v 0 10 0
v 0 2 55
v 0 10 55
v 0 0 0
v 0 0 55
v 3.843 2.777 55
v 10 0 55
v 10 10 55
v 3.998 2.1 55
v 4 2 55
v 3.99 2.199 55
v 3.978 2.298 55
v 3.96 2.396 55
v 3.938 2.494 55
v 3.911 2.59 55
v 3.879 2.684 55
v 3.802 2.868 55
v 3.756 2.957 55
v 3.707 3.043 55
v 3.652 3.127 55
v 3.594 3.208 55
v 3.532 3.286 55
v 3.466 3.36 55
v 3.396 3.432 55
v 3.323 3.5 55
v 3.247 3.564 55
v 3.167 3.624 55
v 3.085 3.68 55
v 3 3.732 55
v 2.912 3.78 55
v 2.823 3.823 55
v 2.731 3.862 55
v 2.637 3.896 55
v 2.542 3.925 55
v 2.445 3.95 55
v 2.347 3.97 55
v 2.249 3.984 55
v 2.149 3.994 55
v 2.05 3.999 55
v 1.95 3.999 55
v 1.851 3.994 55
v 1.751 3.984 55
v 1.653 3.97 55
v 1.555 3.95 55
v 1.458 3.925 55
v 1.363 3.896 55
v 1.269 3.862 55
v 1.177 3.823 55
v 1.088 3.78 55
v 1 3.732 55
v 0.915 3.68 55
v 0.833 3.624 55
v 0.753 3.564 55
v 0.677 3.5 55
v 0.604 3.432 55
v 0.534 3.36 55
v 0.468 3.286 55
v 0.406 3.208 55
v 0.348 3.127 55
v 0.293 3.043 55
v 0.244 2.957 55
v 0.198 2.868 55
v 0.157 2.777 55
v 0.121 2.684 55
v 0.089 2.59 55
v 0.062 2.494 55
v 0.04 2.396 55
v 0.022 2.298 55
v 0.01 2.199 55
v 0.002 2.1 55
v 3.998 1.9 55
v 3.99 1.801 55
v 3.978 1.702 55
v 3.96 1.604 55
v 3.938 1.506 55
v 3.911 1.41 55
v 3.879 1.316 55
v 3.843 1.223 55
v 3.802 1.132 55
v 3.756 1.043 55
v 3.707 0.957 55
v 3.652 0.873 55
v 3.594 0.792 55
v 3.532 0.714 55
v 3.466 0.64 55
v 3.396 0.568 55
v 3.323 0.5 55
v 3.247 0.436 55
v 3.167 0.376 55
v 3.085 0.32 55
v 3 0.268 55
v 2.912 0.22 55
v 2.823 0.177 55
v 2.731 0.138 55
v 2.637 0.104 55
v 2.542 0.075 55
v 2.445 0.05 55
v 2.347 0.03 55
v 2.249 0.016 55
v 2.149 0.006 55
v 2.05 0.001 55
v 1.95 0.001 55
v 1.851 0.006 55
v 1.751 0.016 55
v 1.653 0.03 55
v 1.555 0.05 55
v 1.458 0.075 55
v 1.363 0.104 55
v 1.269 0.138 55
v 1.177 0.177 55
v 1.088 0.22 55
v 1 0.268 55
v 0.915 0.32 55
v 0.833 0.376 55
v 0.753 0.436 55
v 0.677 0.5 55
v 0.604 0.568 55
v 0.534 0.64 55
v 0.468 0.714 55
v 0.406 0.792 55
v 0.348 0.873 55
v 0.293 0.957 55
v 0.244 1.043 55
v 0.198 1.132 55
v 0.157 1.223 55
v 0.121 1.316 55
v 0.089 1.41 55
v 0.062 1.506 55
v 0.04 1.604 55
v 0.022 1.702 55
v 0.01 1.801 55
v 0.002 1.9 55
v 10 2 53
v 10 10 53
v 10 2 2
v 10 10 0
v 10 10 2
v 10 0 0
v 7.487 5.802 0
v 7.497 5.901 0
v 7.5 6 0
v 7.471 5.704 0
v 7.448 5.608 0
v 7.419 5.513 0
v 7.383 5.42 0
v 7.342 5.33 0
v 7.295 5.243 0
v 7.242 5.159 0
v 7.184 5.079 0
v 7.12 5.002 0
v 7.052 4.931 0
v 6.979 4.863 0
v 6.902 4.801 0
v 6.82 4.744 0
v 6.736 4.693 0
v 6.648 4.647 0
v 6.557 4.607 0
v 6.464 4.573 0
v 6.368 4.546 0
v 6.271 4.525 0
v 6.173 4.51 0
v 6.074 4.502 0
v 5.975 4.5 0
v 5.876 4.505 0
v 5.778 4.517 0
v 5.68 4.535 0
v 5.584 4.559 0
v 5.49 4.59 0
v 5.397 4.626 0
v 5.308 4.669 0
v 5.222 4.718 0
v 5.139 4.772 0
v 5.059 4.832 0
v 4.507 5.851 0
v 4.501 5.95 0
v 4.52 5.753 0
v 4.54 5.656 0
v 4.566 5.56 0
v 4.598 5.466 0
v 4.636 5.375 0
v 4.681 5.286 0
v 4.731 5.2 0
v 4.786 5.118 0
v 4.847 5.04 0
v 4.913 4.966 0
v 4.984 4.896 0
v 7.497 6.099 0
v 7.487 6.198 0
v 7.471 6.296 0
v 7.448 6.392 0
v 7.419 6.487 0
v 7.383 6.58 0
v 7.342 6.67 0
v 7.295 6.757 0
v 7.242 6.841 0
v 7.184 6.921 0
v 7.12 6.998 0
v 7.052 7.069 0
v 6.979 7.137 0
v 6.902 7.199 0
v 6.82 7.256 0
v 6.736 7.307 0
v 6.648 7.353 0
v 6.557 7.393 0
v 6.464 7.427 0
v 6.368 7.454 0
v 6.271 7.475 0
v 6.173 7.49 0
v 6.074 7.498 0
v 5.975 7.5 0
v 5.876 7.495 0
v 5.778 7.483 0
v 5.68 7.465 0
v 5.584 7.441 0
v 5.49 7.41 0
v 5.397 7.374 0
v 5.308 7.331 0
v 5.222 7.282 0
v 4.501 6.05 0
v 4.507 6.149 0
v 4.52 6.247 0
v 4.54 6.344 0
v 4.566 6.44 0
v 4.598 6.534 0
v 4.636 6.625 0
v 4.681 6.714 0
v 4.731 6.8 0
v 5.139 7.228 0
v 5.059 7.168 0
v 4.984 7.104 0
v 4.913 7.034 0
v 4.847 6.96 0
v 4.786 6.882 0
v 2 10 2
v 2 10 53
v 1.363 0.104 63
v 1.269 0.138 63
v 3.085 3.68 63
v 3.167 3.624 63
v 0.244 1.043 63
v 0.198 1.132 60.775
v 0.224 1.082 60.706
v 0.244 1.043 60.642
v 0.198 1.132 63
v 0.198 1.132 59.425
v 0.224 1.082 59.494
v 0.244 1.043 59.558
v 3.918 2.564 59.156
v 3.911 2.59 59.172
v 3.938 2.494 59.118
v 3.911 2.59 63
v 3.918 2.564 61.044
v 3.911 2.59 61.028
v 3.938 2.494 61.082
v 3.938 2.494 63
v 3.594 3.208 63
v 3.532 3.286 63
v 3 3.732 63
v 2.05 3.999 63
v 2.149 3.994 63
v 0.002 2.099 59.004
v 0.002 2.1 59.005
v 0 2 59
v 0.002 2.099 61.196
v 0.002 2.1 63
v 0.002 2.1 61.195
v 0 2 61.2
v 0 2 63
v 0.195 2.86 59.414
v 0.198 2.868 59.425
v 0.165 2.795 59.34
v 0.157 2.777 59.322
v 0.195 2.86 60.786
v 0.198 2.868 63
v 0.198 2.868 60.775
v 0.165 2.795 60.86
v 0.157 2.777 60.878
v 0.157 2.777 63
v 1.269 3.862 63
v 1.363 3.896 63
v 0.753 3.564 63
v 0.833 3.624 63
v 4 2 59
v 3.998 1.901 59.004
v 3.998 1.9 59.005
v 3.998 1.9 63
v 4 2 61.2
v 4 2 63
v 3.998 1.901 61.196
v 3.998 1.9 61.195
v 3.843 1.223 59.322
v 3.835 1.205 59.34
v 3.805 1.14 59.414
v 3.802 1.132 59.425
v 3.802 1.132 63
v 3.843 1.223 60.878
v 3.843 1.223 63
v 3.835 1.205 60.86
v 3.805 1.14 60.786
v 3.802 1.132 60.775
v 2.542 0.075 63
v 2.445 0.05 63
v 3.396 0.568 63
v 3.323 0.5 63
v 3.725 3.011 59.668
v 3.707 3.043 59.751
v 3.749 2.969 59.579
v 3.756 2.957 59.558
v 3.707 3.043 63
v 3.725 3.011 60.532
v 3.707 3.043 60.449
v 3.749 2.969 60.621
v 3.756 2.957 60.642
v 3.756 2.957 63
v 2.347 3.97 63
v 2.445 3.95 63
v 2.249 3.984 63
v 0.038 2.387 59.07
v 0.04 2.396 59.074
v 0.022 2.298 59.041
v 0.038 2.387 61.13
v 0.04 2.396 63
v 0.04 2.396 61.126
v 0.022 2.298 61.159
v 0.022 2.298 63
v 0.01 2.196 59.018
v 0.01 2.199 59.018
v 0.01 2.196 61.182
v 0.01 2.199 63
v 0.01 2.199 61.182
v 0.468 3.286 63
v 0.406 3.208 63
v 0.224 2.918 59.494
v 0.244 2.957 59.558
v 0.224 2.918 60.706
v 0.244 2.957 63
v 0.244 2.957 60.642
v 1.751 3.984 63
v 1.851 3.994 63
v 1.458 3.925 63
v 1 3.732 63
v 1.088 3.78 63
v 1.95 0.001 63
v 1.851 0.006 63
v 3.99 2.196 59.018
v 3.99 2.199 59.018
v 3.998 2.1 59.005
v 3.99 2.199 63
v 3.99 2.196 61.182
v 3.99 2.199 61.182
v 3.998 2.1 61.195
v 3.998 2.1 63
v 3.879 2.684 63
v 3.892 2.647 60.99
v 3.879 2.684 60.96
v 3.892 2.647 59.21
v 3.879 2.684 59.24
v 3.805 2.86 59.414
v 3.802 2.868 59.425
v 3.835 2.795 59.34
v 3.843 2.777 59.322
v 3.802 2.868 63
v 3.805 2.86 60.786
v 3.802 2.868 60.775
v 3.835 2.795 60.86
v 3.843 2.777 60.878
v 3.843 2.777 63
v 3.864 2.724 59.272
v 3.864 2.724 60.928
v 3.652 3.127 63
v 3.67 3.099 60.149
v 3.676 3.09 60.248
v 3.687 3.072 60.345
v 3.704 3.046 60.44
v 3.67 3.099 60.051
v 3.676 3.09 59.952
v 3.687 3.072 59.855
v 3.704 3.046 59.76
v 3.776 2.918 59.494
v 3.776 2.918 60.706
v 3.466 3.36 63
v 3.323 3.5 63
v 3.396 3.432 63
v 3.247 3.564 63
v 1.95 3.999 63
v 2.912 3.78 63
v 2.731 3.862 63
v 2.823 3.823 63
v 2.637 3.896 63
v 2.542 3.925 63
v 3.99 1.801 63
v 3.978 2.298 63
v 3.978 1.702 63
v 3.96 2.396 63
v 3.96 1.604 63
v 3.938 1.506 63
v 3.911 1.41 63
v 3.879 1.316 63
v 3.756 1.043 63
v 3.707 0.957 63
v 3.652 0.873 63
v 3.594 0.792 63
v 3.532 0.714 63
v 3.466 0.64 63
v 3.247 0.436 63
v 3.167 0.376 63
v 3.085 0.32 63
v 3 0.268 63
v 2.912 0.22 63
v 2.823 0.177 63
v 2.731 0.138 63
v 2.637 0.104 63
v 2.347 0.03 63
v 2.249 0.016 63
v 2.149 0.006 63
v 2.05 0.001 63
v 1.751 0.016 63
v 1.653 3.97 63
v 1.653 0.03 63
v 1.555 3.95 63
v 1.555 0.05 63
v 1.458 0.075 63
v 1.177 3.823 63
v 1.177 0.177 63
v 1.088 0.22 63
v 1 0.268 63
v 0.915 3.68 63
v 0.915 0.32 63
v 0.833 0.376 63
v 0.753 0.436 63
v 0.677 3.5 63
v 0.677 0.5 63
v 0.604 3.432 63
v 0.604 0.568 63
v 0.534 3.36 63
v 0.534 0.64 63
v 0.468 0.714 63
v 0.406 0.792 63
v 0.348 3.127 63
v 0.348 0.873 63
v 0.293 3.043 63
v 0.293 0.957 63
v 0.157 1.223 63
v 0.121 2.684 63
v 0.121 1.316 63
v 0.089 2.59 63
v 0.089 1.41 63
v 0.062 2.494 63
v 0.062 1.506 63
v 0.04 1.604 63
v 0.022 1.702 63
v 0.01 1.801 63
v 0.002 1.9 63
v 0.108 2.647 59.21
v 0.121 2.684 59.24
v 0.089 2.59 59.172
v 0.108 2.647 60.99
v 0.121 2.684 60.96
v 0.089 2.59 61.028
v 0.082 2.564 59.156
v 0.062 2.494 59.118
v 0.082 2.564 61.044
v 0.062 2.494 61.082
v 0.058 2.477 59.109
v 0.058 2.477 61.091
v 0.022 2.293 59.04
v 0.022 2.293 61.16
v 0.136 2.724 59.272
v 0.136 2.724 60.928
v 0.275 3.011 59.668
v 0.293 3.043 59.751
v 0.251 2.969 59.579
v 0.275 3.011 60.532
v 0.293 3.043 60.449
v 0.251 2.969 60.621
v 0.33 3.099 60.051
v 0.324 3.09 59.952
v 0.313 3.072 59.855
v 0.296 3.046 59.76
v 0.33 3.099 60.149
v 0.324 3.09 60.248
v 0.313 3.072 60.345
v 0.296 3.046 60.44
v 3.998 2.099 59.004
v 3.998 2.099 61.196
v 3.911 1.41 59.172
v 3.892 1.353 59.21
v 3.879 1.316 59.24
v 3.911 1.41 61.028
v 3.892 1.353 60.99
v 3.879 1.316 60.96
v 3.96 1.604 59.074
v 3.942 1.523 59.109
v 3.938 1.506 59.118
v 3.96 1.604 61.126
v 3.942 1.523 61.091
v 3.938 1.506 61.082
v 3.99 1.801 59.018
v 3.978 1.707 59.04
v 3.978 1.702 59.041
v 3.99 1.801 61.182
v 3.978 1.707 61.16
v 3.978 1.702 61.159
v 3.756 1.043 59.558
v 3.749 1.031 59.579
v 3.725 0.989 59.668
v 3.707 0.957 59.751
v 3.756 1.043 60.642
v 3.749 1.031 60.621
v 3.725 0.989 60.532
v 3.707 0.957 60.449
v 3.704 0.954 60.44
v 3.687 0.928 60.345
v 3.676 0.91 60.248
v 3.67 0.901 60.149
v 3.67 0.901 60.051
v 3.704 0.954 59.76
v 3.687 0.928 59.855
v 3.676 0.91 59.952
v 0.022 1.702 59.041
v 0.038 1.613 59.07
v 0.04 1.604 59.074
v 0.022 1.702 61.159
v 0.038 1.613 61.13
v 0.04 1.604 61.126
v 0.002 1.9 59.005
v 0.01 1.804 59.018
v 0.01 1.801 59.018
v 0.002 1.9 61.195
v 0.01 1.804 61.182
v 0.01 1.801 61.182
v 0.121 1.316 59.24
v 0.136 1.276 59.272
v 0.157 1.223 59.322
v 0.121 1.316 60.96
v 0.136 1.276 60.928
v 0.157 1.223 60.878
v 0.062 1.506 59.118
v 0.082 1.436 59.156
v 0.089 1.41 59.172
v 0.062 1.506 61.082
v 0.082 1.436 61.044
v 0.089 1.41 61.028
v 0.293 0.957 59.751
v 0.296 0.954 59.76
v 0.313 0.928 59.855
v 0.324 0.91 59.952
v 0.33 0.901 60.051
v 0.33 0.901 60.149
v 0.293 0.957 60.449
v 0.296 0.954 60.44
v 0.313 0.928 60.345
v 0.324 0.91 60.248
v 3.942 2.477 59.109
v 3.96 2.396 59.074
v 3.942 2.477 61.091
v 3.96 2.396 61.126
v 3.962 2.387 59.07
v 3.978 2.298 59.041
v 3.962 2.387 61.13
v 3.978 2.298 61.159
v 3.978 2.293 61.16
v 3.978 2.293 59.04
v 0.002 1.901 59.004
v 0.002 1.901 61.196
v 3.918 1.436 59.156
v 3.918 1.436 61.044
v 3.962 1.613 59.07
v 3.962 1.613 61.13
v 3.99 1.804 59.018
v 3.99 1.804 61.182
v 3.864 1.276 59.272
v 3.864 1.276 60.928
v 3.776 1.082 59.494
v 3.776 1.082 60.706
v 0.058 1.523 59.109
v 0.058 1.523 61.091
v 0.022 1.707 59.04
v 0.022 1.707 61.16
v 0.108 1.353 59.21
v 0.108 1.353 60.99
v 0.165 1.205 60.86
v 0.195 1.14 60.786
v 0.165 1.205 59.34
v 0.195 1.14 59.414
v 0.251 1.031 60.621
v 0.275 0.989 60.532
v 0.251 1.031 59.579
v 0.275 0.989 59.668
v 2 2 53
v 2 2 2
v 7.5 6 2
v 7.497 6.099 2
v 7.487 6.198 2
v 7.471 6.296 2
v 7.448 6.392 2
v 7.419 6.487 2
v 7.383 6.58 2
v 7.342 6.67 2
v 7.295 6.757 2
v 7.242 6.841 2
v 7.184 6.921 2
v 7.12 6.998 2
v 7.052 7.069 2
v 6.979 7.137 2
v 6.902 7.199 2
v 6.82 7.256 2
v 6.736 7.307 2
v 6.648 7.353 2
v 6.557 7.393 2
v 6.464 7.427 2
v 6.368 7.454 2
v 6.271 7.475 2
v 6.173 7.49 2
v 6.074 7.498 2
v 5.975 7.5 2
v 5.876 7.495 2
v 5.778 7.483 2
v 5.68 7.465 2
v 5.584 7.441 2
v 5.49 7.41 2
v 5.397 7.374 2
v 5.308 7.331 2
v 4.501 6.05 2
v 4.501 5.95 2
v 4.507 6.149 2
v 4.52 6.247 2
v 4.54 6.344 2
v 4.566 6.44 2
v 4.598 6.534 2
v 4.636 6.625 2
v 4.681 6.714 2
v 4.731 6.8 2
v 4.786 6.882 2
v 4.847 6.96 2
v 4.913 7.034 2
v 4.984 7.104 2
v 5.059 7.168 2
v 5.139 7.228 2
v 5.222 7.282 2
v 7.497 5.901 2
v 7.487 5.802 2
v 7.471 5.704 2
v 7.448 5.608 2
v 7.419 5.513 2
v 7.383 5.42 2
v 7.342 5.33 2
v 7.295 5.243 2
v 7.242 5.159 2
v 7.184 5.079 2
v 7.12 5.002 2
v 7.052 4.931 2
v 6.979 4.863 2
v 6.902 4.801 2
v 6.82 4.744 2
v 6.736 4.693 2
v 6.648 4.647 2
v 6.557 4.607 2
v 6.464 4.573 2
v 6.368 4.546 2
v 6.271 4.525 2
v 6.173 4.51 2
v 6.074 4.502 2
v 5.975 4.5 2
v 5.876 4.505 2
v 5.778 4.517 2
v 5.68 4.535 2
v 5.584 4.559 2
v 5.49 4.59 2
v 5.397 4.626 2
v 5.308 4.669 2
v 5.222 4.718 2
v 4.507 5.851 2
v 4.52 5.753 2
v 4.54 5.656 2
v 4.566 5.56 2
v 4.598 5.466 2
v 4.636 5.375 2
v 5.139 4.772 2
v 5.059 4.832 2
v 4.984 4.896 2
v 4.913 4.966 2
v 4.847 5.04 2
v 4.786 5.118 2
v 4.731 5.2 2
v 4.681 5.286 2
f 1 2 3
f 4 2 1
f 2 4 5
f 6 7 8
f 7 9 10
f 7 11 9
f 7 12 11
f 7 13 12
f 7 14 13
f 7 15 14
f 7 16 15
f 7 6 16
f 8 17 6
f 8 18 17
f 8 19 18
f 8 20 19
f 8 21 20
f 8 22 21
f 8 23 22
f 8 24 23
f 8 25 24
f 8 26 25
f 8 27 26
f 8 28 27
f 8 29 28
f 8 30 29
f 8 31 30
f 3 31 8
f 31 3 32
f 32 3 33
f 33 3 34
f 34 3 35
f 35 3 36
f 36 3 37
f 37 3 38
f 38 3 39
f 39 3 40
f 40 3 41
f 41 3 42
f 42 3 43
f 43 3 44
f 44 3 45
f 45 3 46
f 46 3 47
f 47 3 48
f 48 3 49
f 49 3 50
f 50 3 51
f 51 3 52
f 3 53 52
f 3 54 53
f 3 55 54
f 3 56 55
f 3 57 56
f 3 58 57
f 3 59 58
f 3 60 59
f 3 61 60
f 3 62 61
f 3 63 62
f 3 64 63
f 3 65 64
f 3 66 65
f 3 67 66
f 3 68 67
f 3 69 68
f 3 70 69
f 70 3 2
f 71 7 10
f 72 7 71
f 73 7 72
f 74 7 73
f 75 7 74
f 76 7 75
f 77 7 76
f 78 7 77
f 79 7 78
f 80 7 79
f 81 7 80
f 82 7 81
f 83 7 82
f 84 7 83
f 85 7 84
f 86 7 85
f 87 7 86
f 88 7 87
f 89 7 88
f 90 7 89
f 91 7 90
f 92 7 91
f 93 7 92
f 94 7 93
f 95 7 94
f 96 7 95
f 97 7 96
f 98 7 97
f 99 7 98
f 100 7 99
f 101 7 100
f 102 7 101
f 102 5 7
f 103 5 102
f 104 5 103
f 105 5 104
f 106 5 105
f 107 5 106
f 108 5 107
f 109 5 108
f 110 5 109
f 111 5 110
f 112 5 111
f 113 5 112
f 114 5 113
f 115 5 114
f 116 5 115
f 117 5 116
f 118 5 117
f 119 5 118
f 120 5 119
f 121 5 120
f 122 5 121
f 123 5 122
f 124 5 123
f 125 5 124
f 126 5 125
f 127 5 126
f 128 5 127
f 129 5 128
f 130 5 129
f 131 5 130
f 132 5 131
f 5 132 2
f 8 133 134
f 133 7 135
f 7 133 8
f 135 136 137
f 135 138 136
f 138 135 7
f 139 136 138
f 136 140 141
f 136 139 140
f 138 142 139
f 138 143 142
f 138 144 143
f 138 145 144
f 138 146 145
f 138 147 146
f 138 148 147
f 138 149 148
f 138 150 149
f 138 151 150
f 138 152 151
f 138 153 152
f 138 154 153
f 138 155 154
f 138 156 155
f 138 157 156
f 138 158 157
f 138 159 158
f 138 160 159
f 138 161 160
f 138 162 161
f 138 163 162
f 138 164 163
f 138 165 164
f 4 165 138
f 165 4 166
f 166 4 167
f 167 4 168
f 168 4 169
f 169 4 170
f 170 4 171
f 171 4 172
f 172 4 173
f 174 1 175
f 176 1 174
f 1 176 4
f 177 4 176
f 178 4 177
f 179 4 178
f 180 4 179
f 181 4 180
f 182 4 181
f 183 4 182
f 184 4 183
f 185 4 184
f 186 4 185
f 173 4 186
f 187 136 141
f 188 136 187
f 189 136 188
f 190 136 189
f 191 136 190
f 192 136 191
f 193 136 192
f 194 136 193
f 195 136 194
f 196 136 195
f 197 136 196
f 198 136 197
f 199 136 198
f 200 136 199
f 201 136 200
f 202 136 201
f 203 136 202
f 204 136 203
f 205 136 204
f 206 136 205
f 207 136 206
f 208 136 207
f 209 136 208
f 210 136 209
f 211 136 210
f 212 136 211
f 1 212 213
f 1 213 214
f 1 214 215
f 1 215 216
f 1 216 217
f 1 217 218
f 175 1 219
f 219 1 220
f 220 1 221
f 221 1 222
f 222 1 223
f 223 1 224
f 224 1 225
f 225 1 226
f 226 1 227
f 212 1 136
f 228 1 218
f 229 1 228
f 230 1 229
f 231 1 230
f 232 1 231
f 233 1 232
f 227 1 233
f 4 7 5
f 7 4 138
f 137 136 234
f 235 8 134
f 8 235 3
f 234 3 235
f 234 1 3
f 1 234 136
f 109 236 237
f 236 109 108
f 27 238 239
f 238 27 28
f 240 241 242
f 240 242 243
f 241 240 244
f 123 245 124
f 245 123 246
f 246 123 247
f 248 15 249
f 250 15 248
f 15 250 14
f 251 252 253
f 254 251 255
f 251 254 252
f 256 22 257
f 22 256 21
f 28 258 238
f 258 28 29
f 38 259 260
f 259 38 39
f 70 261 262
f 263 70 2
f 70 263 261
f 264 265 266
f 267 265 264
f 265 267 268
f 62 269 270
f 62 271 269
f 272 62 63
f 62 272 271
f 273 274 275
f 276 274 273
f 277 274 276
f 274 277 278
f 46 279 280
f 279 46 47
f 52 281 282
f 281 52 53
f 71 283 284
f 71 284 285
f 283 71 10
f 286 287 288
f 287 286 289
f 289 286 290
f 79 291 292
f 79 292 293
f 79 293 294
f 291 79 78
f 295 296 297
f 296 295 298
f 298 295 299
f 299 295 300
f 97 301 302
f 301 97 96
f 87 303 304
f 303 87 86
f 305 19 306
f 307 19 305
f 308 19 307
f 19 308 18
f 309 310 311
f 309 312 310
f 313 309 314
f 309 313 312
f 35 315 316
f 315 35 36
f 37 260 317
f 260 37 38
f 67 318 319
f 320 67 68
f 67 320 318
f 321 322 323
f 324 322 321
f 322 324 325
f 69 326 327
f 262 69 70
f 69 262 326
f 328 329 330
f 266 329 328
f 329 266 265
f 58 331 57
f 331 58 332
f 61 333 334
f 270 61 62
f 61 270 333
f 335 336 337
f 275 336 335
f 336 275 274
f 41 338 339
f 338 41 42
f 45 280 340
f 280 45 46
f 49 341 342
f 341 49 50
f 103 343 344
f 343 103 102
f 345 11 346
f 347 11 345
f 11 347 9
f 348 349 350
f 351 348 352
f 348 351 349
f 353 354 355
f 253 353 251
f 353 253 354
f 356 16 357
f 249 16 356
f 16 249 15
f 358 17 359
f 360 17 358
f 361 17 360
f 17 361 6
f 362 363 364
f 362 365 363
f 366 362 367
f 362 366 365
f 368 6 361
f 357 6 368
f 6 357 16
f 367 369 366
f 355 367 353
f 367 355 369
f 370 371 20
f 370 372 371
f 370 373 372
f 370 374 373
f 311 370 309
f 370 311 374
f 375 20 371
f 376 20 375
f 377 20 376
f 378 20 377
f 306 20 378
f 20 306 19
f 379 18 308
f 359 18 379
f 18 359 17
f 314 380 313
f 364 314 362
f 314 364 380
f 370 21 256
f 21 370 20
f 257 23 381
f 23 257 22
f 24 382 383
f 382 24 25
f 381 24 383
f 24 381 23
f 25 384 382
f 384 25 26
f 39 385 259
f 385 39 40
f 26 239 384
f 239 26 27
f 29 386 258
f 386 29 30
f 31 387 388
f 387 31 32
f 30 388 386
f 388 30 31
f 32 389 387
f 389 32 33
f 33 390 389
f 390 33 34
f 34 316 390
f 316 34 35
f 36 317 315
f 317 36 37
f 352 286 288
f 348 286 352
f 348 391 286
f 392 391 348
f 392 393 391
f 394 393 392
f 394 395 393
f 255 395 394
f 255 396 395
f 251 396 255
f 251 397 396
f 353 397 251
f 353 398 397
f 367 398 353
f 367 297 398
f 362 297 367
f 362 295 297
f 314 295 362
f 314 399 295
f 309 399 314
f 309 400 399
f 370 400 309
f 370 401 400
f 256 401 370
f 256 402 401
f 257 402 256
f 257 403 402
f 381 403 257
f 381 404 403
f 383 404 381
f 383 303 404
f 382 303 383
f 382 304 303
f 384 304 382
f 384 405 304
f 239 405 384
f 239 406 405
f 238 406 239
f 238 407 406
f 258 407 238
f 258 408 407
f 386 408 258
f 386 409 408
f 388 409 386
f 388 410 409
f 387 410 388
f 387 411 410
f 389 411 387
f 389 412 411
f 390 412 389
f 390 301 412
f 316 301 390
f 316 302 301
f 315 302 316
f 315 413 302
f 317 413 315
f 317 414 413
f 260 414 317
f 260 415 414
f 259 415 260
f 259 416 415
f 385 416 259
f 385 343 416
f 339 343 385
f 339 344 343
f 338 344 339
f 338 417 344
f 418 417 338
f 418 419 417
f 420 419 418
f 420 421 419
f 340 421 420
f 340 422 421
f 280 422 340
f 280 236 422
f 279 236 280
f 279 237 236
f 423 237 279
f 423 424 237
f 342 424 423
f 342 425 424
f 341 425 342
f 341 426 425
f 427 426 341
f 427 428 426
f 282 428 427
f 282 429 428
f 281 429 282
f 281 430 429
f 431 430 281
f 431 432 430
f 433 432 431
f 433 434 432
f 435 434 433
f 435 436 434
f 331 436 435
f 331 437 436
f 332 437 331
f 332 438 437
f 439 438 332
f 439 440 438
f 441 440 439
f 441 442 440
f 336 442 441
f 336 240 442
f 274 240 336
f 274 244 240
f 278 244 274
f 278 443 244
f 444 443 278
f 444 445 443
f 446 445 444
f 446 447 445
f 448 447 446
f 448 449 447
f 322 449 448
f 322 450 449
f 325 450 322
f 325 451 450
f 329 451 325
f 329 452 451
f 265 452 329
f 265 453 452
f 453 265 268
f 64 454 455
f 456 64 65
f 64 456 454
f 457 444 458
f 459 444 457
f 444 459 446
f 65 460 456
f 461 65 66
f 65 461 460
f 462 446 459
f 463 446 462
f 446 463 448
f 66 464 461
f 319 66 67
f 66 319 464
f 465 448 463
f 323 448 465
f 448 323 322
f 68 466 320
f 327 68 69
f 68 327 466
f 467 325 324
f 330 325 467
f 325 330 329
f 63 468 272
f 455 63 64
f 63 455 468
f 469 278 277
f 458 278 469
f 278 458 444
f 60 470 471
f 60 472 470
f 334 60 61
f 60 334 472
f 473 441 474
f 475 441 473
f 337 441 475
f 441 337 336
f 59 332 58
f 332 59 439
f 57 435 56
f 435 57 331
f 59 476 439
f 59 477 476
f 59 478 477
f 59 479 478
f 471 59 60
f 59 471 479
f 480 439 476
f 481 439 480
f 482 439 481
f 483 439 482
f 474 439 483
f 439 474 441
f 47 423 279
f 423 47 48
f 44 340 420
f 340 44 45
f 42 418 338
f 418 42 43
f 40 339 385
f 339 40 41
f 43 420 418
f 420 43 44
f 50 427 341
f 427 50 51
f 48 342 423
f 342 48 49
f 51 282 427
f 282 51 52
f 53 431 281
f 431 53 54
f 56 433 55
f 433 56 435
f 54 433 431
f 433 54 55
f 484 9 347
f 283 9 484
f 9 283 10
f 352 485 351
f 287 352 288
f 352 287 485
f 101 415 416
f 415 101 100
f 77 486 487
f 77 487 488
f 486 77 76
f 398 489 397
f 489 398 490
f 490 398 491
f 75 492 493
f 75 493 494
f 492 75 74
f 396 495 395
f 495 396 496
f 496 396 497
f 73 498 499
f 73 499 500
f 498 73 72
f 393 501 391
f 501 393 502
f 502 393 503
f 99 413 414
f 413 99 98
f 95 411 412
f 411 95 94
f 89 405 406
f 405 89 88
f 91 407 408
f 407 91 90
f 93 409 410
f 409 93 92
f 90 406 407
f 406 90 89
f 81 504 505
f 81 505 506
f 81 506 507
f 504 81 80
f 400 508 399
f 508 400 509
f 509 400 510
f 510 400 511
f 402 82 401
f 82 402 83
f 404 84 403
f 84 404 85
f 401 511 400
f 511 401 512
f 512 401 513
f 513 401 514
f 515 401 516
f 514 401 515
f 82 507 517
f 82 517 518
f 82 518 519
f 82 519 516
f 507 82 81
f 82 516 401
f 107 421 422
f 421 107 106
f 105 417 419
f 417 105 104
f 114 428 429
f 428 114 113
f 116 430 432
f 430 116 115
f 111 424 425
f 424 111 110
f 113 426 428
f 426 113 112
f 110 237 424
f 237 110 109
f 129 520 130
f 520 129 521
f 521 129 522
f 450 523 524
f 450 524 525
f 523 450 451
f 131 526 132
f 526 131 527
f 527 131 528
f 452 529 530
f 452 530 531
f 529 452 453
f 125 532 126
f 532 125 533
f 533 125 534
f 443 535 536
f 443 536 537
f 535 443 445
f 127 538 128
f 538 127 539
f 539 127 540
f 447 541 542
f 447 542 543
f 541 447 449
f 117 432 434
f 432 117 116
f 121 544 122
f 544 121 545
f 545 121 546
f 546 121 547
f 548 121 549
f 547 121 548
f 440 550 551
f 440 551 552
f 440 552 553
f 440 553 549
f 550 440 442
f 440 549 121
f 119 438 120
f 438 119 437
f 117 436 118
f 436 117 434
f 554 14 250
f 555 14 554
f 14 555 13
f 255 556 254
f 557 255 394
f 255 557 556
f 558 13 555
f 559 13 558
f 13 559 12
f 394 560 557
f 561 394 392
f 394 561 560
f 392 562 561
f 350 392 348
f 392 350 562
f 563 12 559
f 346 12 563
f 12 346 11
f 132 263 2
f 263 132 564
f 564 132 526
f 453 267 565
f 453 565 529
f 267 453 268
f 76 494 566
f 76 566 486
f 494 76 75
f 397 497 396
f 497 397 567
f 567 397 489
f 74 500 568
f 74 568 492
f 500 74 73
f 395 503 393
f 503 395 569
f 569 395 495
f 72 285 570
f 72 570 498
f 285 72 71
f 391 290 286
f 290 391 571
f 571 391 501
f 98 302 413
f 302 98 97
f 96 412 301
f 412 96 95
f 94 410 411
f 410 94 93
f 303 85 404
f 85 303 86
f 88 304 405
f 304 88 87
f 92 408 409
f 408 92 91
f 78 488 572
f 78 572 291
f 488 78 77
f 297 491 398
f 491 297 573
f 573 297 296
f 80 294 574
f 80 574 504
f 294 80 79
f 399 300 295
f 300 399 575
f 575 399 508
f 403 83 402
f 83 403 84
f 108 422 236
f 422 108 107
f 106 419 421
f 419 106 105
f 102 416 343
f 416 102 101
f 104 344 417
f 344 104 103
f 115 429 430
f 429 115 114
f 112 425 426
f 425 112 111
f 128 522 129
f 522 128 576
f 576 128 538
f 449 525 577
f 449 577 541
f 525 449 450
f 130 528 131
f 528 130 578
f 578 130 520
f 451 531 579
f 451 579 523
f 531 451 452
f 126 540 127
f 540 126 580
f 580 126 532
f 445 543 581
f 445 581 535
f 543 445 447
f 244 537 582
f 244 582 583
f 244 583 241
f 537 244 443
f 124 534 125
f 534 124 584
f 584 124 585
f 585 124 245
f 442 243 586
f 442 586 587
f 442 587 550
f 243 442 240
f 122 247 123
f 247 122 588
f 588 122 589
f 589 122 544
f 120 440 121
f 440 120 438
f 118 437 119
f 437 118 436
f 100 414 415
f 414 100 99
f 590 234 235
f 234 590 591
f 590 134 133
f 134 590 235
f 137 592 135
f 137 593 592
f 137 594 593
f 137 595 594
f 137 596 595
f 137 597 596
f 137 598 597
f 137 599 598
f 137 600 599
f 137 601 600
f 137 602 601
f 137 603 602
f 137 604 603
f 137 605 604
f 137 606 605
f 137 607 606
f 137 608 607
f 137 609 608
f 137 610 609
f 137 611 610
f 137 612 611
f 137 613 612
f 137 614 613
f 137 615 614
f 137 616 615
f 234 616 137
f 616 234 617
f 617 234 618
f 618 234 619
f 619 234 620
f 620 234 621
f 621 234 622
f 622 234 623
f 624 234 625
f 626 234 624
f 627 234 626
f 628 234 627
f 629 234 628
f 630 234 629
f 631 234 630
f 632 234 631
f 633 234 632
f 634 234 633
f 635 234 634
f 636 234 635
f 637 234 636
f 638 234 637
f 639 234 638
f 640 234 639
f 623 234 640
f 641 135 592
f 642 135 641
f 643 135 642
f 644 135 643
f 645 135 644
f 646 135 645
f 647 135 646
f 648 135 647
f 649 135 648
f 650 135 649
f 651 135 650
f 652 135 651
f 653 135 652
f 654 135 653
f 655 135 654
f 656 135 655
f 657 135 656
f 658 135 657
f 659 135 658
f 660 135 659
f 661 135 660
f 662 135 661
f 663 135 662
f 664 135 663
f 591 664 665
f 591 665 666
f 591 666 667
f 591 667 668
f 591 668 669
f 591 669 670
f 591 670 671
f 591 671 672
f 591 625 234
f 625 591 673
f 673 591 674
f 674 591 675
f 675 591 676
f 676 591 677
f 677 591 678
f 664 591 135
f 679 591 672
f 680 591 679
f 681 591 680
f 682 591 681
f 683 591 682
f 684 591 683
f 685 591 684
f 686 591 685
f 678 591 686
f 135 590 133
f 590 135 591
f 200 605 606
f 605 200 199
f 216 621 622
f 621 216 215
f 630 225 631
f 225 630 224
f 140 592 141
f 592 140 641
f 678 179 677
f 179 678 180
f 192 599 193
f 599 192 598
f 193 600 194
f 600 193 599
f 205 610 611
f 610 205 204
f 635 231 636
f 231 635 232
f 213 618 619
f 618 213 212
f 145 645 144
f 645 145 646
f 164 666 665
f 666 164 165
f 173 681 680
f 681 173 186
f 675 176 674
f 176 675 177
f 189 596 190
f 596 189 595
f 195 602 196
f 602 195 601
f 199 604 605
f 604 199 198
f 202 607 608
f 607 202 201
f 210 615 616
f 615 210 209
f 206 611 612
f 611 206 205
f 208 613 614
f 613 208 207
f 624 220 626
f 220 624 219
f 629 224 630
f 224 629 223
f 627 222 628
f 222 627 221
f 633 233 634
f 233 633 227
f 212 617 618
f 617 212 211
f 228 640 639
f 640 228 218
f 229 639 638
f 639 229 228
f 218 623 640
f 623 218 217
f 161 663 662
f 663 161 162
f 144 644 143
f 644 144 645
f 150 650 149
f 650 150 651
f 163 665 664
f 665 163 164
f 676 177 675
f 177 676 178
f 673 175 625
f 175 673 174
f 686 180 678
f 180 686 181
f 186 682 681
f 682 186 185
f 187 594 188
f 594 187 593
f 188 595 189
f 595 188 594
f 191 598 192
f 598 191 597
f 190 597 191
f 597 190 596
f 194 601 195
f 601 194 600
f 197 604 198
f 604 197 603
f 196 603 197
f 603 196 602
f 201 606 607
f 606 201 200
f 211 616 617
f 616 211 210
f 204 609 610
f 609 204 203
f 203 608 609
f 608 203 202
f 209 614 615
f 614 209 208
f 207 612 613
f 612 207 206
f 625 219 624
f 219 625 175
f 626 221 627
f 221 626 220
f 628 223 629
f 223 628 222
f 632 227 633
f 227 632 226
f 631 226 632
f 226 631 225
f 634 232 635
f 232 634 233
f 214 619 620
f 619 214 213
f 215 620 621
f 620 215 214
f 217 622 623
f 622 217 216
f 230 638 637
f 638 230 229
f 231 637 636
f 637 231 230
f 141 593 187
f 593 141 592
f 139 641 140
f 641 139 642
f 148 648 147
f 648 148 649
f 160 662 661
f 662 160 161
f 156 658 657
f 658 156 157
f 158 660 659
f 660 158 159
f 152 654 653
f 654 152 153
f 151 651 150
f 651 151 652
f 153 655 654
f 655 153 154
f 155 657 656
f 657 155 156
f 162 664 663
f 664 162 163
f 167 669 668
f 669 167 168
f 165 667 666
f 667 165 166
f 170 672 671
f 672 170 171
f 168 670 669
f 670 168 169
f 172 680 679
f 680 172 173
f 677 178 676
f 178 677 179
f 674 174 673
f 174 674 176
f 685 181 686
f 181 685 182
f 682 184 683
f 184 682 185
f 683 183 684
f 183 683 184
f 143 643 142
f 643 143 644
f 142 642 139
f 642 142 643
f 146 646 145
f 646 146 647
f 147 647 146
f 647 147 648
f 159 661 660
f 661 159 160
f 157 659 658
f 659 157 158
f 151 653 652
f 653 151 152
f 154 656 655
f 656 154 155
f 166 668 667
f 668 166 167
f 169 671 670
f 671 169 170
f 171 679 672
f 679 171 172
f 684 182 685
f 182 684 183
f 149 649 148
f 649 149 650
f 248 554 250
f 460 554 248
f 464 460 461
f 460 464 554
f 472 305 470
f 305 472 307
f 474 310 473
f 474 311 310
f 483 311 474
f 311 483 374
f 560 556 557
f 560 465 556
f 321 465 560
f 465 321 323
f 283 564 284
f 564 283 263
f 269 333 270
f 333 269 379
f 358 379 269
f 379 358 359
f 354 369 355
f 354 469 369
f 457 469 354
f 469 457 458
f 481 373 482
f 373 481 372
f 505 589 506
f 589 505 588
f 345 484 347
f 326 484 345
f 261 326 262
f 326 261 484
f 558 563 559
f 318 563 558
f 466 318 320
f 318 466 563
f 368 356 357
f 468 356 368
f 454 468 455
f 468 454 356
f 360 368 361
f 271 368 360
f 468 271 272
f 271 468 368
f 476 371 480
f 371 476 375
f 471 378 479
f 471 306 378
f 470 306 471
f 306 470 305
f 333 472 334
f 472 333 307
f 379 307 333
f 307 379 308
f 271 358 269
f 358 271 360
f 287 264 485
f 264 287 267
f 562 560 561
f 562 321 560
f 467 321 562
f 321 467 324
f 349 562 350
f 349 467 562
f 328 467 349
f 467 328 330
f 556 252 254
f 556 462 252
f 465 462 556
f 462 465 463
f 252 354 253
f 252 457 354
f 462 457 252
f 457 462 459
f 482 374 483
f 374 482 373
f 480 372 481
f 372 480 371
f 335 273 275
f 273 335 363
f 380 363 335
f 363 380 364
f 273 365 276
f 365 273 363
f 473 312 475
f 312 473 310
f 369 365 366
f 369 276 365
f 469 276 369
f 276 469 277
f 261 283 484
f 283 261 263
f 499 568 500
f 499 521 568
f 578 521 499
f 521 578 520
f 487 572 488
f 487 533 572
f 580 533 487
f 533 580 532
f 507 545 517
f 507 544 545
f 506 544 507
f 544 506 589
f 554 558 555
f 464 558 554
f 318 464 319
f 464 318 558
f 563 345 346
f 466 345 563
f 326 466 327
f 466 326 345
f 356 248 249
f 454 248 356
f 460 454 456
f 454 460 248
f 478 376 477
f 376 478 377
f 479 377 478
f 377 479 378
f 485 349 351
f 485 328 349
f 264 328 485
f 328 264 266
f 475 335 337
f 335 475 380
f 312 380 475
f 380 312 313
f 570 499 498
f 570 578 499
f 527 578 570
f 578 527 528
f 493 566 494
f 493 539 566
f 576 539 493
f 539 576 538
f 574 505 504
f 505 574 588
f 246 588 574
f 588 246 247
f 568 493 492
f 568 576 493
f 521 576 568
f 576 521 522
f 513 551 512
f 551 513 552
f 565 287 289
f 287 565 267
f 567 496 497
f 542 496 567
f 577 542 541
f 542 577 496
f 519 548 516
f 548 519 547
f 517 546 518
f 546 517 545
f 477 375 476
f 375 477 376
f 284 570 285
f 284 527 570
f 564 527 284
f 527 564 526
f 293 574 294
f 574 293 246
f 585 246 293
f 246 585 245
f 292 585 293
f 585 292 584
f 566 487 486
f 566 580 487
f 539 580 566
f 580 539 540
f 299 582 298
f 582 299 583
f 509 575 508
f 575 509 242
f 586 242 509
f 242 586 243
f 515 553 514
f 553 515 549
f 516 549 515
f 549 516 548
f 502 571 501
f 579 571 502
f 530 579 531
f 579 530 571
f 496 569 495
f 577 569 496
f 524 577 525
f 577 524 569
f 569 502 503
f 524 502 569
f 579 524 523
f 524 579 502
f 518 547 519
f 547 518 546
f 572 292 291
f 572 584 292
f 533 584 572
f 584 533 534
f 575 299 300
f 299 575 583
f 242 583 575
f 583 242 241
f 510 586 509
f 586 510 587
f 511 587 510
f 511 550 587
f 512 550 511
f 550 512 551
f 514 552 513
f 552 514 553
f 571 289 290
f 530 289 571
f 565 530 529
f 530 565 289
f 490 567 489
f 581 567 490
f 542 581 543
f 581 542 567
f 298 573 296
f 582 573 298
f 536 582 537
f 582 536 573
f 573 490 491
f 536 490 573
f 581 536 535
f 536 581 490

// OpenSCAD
$fa =.1;
$fs =.1;
difference() {
	union() {
		cube([10,10,55]);
		translate([2,2,55])
		cylinder(8,2,2);
	}
	union() {
		translate([2,2,2])
		cube([10,10,51]);
		translate([6,6,-1])
		cylinder(4,1.5,1.5);
		translate([-1,2,55+4+1.1])
		rotate([0,90,0])
		cylinder(6,1.1,1.1);
	}
}
